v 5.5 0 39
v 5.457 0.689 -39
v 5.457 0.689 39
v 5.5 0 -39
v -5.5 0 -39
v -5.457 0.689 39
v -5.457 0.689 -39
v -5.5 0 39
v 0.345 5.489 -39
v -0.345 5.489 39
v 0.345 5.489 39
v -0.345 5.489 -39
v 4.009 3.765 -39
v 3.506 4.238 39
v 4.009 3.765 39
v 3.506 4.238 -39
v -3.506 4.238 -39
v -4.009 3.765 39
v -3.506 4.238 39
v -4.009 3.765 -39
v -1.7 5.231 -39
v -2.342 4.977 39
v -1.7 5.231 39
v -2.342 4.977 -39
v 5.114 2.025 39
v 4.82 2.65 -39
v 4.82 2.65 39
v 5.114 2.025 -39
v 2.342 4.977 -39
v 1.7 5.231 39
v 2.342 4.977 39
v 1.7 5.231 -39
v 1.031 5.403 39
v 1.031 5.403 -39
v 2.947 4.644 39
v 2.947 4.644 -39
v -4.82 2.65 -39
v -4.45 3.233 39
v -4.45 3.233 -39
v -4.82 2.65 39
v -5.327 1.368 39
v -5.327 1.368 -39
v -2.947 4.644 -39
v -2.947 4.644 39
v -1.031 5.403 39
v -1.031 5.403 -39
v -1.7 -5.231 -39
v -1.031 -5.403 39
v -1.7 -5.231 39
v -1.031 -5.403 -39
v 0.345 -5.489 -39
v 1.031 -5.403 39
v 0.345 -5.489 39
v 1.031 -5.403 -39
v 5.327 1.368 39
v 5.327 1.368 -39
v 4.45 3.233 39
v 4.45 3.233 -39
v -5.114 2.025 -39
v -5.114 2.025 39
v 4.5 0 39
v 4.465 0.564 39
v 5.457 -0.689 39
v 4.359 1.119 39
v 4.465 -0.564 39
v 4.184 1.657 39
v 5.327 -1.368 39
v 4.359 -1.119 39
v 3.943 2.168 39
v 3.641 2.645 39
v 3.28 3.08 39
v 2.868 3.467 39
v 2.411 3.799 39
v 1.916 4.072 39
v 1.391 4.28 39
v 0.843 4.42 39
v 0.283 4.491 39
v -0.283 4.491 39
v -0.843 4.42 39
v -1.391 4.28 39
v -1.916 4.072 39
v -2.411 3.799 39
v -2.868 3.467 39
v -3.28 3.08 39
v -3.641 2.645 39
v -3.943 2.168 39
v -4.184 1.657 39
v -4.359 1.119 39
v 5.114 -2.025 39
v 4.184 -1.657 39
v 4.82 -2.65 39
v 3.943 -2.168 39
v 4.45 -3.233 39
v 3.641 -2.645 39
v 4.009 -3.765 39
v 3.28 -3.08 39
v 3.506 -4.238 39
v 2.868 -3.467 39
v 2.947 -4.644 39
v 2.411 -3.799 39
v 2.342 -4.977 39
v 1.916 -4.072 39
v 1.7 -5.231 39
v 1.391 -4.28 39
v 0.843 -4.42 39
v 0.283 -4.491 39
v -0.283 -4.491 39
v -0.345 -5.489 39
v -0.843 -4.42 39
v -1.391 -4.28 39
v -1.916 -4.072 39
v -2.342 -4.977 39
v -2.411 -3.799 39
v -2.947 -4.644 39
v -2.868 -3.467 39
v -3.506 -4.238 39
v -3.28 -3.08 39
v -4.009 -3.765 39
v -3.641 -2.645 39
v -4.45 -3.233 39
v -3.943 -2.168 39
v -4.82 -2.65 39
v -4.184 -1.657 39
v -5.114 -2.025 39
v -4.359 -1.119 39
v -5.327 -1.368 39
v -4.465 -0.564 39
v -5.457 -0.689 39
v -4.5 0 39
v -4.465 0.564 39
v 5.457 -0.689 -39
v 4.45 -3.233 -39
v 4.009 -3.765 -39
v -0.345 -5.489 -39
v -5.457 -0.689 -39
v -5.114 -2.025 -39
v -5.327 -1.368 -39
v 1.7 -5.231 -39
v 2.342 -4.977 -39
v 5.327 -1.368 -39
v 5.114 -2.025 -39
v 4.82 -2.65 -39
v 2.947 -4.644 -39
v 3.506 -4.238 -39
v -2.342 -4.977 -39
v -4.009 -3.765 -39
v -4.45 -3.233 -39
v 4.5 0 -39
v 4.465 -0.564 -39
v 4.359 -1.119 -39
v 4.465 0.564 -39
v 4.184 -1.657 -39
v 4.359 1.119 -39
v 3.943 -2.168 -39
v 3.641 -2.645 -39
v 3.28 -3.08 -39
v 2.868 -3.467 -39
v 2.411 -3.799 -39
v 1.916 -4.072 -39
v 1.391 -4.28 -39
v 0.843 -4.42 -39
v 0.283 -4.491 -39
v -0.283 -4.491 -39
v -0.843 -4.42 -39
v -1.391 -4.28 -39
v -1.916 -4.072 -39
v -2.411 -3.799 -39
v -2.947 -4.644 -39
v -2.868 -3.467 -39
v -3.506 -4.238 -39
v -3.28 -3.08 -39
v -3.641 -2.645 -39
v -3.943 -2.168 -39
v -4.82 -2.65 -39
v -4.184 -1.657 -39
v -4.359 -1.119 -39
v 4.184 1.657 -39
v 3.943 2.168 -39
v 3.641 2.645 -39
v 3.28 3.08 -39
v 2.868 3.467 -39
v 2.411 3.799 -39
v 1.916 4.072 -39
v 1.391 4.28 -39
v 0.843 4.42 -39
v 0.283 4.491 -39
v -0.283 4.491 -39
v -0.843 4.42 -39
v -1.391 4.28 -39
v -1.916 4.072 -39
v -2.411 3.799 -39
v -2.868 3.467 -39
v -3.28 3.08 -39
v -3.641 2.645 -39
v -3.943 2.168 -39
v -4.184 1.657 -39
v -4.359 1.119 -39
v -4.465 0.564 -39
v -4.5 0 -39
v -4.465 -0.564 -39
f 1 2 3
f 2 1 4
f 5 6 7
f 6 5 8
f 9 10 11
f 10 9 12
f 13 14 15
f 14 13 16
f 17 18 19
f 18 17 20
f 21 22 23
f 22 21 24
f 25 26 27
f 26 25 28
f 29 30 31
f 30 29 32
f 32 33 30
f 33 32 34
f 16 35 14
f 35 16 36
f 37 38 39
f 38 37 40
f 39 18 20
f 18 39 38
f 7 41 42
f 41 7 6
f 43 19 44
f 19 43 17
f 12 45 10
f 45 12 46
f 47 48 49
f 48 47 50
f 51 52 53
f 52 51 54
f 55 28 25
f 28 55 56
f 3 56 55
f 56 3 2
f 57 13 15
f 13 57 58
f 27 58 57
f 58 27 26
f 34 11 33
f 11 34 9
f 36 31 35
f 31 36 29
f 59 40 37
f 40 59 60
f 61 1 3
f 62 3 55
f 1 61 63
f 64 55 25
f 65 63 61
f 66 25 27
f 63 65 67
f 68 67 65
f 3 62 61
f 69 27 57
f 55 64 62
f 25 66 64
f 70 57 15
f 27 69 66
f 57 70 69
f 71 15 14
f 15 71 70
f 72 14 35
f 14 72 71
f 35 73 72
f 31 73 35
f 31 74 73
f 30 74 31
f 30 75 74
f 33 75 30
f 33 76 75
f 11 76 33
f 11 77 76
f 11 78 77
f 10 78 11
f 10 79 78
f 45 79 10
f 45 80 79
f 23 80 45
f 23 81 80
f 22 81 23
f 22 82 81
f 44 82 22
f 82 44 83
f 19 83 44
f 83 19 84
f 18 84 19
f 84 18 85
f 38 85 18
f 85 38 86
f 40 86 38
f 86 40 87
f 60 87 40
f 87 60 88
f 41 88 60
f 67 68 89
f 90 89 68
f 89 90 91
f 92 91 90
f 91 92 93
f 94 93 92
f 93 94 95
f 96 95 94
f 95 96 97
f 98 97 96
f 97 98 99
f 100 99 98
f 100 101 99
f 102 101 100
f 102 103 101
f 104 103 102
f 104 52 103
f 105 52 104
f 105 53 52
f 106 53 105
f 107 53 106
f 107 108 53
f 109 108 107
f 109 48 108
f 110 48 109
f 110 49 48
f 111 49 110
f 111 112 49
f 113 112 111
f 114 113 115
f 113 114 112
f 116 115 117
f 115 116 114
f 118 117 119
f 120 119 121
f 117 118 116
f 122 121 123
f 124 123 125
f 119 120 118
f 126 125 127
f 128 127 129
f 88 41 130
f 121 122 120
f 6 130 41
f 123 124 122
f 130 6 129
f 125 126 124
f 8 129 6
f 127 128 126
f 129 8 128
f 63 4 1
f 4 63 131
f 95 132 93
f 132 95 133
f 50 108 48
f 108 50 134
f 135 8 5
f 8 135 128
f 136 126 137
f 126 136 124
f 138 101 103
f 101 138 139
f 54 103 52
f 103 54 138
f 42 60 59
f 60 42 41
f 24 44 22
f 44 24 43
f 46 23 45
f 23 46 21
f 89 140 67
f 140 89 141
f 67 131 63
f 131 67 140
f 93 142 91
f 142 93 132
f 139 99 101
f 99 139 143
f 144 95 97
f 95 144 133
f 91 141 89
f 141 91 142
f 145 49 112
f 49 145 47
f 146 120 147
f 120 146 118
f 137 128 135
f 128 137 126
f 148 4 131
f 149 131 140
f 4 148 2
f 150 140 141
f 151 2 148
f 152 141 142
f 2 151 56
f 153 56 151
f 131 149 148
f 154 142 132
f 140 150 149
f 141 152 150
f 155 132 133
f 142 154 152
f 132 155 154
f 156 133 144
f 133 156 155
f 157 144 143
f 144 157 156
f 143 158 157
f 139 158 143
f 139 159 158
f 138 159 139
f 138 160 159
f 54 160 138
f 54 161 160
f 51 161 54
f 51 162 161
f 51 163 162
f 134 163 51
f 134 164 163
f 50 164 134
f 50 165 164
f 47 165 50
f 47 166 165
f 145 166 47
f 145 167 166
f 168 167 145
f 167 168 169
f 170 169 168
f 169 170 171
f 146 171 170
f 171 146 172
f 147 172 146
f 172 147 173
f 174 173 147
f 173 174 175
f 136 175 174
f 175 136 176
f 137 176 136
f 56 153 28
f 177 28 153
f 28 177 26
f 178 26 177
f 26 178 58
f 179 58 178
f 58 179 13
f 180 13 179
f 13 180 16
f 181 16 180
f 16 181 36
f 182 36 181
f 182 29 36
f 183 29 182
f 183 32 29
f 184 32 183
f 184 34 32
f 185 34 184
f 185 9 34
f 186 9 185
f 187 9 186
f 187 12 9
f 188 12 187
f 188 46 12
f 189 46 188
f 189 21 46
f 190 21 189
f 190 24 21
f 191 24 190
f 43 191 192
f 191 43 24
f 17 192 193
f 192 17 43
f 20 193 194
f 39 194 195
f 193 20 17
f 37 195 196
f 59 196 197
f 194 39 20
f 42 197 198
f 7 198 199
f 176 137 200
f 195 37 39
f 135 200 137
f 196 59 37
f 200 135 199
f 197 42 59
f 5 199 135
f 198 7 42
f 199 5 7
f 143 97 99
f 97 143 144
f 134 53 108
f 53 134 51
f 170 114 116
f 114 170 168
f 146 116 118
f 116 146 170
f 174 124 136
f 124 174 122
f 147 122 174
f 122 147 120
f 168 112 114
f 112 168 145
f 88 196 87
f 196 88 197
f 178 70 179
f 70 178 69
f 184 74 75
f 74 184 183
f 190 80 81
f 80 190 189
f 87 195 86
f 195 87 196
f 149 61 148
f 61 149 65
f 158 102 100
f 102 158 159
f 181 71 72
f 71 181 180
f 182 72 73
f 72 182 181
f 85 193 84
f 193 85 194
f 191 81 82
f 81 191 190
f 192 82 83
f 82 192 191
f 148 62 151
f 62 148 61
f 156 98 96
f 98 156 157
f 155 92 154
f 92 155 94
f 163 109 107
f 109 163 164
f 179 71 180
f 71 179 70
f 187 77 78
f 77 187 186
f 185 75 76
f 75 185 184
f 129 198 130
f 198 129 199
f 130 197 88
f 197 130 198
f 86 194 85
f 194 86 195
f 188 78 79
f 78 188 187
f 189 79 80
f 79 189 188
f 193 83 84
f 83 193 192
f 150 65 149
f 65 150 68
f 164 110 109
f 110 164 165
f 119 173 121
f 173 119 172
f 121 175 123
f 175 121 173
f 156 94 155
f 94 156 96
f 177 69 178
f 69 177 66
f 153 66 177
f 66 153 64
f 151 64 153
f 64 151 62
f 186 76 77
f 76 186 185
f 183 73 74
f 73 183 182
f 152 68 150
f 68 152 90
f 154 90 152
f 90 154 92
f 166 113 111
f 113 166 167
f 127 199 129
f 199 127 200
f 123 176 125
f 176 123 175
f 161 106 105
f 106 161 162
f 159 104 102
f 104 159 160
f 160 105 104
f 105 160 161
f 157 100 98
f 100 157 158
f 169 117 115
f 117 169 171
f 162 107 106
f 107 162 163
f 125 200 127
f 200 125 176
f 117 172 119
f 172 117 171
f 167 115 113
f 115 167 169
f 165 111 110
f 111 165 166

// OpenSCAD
$fn = 50;


difference() {
	union() {
		translate(v = [0, 0, -39.0000000000]) {
			cylinder(h = 78, r = 5.5000000000);
		}
	}
	union() {
		translate(v = [0, 0, -100.0000000000]) {
			cylinder(h = 200, r = 4.5000000000);
		}
	}
}
